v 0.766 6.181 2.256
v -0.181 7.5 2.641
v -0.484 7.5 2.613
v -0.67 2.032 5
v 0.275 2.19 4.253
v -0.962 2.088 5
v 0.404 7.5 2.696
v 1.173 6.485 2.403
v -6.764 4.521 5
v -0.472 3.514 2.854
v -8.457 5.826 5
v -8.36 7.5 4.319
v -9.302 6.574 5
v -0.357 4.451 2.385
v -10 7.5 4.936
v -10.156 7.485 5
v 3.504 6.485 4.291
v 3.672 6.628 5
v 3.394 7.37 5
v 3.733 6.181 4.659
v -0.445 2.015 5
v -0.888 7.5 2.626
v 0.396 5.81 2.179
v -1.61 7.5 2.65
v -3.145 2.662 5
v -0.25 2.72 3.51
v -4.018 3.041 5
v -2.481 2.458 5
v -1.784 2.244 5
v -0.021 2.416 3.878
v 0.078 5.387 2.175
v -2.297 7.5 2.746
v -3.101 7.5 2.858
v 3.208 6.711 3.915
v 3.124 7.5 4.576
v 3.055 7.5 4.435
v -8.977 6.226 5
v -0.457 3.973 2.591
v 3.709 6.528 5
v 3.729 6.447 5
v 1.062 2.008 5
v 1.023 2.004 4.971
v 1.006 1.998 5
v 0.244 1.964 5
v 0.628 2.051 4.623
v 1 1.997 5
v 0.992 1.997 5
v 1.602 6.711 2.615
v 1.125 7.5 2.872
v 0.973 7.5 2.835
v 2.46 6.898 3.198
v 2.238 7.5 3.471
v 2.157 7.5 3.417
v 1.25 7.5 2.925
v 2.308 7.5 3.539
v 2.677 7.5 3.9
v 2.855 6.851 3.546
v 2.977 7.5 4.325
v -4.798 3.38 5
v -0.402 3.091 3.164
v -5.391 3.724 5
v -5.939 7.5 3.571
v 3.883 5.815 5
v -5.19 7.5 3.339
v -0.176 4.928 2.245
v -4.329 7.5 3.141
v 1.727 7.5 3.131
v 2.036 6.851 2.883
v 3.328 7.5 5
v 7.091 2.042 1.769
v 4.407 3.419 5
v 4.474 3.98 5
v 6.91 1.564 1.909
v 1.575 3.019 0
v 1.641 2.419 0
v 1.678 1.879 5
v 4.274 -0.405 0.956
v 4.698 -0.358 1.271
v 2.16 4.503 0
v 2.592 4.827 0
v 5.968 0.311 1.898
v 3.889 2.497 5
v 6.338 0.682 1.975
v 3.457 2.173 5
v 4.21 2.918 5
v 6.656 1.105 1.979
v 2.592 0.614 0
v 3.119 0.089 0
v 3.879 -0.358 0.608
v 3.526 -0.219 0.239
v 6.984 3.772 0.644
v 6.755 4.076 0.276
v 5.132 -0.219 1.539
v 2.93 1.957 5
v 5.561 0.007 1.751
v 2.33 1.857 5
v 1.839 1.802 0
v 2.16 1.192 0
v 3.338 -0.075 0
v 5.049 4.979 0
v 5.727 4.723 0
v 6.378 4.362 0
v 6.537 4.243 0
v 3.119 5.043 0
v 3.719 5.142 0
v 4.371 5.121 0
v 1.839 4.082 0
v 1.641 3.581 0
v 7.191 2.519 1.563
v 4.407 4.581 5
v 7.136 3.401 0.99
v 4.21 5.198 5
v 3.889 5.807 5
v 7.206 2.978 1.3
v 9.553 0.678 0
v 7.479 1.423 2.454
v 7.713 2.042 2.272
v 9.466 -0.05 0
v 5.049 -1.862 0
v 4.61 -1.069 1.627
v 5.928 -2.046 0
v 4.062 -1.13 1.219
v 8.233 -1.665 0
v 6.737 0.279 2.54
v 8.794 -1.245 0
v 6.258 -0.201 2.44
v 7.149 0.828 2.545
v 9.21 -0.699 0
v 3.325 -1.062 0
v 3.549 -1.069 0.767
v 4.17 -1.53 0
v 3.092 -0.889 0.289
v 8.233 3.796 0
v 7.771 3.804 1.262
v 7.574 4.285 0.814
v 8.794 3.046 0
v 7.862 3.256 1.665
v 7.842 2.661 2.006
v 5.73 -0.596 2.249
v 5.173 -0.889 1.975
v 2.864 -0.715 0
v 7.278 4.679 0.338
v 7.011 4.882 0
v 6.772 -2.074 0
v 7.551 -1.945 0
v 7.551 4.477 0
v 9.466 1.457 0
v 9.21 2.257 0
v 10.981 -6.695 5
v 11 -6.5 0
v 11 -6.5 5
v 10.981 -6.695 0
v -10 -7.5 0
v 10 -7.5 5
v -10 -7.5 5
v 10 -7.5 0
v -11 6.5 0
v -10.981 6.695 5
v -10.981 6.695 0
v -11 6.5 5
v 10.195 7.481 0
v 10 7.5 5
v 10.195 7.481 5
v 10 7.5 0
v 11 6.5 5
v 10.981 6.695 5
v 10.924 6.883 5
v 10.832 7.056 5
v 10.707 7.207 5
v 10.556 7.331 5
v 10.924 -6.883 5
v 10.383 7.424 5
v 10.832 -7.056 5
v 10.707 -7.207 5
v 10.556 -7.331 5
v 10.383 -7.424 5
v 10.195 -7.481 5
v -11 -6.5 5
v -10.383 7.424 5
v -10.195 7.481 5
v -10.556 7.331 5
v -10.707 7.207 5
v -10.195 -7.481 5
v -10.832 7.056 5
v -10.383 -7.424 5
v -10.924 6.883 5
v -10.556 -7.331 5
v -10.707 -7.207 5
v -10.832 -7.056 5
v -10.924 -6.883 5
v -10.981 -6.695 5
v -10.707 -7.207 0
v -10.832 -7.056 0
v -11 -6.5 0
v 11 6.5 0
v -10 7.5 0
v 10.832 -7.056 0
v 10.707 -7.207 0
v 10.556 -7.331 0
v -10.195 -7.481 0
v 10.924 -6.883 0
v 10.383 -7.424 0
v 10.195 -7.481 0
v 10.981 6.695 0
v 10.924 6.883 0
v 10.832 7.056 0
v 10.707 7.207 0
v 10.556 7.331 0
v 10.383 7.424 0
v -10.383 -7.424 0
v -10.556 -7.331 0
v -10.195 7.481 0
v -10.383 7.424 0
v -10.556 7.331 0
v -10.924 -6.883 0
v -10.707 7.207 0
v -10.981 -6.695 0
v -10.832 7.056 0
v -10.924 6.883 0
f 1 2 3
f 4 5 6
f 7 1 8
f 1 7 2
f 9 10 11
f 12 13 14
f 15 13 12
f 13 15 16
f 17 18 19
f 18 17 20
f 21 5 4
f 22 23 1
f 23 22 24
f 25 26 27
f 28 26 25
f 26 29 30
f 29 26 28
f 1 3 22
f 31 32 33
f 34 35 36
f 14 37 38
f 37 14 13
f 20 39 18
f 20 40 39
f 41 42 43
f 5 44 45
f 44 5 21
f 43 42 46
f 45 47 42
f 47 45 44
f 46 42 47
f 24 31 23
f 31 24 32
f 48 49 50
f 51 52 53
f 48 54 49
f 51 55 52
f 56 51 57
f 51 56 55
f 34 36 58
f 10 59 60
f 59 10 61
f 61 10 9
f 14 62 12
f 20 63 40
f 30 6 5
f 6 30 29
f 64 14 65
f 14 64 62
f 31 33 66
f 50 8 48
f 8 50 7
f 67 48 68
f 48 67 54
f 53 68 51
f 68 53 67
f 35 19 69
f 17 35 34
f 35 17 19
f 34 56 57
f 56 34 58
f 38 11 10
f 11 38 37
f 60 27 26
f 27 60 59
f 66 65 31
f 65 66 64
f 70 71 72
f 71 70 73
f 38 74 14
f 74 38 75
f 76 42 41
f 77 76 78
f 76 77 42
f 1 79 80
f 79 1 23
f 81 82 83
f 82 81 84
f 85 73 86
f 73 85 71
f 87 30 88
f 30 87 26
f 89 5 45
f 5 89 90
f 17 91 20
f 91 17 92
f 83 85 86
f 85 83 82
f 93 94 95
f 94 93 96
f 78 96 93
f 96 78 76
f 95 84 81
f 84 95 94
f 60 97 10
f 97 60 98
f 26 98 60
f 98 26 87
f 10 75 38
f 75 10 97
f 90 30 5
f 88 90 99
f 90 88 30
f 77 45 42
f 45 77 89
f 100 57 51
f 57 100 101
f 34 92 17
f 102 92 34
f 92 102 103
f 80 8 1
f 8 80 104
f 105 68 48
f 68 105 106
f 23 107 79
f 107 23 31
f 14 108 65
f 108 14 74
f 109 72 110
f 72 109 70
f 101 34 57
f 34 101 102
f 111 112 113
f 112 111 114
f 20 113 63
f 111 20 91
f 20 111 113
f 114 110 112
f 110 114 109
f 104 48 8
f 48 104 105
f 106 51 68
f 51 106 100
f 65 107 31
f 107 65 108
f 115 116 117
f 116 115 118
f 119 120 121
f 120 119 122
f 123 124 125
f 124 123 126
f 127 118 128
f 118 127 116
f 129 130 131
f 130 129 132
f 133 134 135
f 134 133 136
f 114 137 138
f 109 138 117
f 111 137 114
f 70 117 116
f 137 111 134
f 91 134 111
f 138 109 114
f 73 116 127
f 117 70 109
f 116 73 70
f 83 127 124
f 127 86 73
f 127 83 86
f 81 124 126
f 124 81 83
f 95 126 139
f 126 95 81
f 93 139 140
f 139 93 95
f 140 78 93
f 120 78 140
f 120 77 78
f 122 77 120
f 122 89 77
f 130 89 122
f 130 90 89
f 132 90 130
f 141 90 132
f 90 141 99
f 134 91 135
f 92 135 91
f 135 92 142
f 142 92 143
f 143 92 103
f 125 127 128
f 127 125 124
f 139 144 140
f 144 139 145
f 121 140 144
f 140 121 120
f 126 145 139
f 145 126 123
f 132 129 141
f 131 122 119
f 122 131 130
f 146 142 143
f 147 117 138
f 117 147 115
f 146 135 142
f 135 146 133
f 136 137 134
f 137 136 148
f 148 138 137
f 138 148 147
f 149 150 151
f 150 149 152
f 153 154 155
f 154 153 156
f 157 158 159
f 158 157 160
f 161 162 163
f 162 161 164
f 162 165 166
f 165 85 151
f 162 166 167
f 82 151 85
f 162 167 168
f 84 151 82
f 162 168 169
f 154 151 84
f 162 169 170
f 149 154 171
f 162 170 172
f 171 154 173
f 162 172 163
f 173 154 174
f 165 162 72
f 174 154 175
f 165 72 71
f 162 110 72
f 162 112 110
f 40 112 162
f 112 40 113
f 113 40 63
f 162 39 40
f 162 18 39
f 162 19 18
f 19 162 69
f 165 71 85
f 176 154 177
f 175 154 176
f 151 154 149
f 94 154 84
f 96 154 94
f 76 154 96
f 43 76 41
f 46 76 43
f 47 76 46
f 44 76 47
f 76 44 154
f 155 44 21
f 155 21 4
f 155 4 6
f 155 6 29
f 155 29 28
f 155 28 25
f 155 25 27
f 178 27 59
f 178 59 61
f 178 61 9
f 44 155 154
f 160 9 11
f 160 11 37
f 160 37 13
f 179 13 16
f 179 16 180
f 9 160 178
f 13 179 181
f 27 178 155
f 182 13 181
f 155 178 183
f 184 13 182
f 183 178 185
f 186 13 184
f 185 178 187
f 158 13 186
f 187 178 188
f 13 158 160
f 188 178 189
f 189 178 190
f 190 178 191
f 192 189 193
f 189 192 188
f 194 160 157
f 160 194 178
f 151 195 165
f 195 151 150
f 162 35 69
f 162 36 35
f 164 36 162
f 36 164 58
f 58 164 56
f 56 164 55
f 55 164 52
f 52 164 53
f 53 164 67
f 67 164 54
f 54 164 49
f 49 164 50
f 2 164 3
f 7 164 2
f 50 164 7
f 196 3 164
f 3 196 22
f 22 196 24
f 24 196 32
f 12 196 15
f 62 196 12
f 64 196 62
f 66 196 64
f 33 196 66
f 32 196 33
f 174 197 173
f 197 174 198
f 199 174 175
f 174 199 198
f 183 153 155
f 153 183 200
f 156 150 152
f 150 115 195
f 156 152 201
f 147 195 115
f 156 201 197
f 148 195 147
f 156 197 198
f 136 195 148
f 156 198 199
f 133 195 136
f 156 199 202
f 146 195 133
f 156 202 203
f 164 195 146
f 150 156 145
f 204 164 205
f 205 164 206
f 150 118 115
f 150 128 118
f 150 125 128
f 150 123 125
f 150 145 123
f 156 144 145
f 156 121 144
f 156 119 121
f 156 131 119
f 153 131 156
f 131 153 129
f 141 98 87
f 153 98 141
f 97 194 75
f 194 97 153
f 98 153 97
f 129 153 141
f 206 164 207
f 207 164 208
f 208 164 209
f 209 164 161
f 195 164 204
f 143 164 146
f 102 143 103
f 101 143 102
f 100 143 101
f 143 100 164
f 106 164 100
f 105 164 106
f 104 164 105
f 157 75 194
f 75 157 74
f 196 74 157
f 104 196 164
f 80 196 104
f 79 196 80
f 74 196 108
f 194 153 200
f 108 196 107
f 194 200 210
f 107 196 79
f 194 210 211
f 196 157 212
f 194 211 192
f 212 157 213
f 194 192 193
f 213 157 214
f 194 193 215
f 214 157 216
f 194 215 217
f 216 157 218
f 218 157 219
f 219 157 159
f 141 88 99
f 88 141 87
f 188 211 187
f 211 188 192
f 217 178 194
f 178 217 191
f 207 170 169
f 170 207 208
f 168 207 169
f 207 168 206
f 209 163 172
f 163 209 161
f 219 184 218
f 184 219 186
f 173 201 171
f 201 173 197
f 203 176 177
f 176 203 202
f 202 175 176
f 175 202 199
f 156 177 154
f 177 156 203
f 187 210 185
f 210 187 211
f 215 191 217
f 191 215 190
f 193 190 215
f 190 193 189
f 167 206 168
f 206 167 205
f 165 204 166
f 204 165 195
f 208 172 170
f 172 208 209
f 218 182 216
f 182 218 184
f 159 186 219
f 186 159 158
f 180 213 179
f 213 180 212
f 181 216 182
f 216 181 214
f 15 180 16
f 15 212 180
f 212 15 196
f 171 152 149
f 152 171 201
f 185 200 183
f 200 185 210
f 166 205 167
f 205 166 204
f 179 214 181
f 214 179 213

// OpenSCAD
$fn=32;

eps1 = 0.01;
eps2 = 0.02;

hole_d1 = 5+0.4;
hole_d2 = 8;
hole_d3 = 7;

hole_horiz_offset = 1;
hole_vert_offset = -5;

thickness = 5;
vert_angle = 25;
horiz_angle = 39;  // was 40

width = 15;
length = 22;  // was 22


// Operator to inset first layer to eliminate elephant foot.
// Children are assumed to be on the z=0 plane.
//module inset_first_layer(w=0.4, h=0.4, eps=0.01) {
//  if (w == 0 || h < 0) {
//    children();
//  } else {
//    difference() { 
//      children();  
//      // TODO: use actual extended children projection instead
//      // of a clube with arbitrary large x,y values.
//       cube([30, 30, 2*h], center=true);
//    }
//    linear_extrude(height=h+eps)
//      offset(r = -w) 
//        projection(cut=true)
//          translate([0, 0, -eps1]) children();
//  }
//}

module corner_post(l, w, h, r) {
     translate([l/2-r, w/2-r, 0])
      cylinder(r=r, h=h);
}

module rounded_block(l, w, h, r) {
  hull() {
    corner_post(l, w, h, r);
    mirror([1, 0, 0]) corner_post(l, w, h, r);
    mirror([0, 1, 0]) corner_post(l, w, h, r);
    mirror([1, 0, 0]) mirror([0, 1, 0]) corner_post(l, w, h, r);
  }
}

module hole() {
  translate([0, 0, -15]) 
    cylinder(d1=2*10+hole_d2, d2=hole_d1, h=15+(hole_d2-hole_d1)/2);
  
  cylinder(d=hole_d1, h=15);
  
  translate([0, 0, 7]) cylinder(d=hole_d3, h=20);
}

module main() {
  difference() {
    rounded_block(length, width, thickness, 1);
    translate([hole_horiz_offset, hole_vert_offset, 0]) rotate([-vert_angle, horiz_angle, 0])  hole();
  }
}

//inset_first_layer() 
  translate([0, 0, thickness]) rotate([180, 0, 0]) main();

//hole();
